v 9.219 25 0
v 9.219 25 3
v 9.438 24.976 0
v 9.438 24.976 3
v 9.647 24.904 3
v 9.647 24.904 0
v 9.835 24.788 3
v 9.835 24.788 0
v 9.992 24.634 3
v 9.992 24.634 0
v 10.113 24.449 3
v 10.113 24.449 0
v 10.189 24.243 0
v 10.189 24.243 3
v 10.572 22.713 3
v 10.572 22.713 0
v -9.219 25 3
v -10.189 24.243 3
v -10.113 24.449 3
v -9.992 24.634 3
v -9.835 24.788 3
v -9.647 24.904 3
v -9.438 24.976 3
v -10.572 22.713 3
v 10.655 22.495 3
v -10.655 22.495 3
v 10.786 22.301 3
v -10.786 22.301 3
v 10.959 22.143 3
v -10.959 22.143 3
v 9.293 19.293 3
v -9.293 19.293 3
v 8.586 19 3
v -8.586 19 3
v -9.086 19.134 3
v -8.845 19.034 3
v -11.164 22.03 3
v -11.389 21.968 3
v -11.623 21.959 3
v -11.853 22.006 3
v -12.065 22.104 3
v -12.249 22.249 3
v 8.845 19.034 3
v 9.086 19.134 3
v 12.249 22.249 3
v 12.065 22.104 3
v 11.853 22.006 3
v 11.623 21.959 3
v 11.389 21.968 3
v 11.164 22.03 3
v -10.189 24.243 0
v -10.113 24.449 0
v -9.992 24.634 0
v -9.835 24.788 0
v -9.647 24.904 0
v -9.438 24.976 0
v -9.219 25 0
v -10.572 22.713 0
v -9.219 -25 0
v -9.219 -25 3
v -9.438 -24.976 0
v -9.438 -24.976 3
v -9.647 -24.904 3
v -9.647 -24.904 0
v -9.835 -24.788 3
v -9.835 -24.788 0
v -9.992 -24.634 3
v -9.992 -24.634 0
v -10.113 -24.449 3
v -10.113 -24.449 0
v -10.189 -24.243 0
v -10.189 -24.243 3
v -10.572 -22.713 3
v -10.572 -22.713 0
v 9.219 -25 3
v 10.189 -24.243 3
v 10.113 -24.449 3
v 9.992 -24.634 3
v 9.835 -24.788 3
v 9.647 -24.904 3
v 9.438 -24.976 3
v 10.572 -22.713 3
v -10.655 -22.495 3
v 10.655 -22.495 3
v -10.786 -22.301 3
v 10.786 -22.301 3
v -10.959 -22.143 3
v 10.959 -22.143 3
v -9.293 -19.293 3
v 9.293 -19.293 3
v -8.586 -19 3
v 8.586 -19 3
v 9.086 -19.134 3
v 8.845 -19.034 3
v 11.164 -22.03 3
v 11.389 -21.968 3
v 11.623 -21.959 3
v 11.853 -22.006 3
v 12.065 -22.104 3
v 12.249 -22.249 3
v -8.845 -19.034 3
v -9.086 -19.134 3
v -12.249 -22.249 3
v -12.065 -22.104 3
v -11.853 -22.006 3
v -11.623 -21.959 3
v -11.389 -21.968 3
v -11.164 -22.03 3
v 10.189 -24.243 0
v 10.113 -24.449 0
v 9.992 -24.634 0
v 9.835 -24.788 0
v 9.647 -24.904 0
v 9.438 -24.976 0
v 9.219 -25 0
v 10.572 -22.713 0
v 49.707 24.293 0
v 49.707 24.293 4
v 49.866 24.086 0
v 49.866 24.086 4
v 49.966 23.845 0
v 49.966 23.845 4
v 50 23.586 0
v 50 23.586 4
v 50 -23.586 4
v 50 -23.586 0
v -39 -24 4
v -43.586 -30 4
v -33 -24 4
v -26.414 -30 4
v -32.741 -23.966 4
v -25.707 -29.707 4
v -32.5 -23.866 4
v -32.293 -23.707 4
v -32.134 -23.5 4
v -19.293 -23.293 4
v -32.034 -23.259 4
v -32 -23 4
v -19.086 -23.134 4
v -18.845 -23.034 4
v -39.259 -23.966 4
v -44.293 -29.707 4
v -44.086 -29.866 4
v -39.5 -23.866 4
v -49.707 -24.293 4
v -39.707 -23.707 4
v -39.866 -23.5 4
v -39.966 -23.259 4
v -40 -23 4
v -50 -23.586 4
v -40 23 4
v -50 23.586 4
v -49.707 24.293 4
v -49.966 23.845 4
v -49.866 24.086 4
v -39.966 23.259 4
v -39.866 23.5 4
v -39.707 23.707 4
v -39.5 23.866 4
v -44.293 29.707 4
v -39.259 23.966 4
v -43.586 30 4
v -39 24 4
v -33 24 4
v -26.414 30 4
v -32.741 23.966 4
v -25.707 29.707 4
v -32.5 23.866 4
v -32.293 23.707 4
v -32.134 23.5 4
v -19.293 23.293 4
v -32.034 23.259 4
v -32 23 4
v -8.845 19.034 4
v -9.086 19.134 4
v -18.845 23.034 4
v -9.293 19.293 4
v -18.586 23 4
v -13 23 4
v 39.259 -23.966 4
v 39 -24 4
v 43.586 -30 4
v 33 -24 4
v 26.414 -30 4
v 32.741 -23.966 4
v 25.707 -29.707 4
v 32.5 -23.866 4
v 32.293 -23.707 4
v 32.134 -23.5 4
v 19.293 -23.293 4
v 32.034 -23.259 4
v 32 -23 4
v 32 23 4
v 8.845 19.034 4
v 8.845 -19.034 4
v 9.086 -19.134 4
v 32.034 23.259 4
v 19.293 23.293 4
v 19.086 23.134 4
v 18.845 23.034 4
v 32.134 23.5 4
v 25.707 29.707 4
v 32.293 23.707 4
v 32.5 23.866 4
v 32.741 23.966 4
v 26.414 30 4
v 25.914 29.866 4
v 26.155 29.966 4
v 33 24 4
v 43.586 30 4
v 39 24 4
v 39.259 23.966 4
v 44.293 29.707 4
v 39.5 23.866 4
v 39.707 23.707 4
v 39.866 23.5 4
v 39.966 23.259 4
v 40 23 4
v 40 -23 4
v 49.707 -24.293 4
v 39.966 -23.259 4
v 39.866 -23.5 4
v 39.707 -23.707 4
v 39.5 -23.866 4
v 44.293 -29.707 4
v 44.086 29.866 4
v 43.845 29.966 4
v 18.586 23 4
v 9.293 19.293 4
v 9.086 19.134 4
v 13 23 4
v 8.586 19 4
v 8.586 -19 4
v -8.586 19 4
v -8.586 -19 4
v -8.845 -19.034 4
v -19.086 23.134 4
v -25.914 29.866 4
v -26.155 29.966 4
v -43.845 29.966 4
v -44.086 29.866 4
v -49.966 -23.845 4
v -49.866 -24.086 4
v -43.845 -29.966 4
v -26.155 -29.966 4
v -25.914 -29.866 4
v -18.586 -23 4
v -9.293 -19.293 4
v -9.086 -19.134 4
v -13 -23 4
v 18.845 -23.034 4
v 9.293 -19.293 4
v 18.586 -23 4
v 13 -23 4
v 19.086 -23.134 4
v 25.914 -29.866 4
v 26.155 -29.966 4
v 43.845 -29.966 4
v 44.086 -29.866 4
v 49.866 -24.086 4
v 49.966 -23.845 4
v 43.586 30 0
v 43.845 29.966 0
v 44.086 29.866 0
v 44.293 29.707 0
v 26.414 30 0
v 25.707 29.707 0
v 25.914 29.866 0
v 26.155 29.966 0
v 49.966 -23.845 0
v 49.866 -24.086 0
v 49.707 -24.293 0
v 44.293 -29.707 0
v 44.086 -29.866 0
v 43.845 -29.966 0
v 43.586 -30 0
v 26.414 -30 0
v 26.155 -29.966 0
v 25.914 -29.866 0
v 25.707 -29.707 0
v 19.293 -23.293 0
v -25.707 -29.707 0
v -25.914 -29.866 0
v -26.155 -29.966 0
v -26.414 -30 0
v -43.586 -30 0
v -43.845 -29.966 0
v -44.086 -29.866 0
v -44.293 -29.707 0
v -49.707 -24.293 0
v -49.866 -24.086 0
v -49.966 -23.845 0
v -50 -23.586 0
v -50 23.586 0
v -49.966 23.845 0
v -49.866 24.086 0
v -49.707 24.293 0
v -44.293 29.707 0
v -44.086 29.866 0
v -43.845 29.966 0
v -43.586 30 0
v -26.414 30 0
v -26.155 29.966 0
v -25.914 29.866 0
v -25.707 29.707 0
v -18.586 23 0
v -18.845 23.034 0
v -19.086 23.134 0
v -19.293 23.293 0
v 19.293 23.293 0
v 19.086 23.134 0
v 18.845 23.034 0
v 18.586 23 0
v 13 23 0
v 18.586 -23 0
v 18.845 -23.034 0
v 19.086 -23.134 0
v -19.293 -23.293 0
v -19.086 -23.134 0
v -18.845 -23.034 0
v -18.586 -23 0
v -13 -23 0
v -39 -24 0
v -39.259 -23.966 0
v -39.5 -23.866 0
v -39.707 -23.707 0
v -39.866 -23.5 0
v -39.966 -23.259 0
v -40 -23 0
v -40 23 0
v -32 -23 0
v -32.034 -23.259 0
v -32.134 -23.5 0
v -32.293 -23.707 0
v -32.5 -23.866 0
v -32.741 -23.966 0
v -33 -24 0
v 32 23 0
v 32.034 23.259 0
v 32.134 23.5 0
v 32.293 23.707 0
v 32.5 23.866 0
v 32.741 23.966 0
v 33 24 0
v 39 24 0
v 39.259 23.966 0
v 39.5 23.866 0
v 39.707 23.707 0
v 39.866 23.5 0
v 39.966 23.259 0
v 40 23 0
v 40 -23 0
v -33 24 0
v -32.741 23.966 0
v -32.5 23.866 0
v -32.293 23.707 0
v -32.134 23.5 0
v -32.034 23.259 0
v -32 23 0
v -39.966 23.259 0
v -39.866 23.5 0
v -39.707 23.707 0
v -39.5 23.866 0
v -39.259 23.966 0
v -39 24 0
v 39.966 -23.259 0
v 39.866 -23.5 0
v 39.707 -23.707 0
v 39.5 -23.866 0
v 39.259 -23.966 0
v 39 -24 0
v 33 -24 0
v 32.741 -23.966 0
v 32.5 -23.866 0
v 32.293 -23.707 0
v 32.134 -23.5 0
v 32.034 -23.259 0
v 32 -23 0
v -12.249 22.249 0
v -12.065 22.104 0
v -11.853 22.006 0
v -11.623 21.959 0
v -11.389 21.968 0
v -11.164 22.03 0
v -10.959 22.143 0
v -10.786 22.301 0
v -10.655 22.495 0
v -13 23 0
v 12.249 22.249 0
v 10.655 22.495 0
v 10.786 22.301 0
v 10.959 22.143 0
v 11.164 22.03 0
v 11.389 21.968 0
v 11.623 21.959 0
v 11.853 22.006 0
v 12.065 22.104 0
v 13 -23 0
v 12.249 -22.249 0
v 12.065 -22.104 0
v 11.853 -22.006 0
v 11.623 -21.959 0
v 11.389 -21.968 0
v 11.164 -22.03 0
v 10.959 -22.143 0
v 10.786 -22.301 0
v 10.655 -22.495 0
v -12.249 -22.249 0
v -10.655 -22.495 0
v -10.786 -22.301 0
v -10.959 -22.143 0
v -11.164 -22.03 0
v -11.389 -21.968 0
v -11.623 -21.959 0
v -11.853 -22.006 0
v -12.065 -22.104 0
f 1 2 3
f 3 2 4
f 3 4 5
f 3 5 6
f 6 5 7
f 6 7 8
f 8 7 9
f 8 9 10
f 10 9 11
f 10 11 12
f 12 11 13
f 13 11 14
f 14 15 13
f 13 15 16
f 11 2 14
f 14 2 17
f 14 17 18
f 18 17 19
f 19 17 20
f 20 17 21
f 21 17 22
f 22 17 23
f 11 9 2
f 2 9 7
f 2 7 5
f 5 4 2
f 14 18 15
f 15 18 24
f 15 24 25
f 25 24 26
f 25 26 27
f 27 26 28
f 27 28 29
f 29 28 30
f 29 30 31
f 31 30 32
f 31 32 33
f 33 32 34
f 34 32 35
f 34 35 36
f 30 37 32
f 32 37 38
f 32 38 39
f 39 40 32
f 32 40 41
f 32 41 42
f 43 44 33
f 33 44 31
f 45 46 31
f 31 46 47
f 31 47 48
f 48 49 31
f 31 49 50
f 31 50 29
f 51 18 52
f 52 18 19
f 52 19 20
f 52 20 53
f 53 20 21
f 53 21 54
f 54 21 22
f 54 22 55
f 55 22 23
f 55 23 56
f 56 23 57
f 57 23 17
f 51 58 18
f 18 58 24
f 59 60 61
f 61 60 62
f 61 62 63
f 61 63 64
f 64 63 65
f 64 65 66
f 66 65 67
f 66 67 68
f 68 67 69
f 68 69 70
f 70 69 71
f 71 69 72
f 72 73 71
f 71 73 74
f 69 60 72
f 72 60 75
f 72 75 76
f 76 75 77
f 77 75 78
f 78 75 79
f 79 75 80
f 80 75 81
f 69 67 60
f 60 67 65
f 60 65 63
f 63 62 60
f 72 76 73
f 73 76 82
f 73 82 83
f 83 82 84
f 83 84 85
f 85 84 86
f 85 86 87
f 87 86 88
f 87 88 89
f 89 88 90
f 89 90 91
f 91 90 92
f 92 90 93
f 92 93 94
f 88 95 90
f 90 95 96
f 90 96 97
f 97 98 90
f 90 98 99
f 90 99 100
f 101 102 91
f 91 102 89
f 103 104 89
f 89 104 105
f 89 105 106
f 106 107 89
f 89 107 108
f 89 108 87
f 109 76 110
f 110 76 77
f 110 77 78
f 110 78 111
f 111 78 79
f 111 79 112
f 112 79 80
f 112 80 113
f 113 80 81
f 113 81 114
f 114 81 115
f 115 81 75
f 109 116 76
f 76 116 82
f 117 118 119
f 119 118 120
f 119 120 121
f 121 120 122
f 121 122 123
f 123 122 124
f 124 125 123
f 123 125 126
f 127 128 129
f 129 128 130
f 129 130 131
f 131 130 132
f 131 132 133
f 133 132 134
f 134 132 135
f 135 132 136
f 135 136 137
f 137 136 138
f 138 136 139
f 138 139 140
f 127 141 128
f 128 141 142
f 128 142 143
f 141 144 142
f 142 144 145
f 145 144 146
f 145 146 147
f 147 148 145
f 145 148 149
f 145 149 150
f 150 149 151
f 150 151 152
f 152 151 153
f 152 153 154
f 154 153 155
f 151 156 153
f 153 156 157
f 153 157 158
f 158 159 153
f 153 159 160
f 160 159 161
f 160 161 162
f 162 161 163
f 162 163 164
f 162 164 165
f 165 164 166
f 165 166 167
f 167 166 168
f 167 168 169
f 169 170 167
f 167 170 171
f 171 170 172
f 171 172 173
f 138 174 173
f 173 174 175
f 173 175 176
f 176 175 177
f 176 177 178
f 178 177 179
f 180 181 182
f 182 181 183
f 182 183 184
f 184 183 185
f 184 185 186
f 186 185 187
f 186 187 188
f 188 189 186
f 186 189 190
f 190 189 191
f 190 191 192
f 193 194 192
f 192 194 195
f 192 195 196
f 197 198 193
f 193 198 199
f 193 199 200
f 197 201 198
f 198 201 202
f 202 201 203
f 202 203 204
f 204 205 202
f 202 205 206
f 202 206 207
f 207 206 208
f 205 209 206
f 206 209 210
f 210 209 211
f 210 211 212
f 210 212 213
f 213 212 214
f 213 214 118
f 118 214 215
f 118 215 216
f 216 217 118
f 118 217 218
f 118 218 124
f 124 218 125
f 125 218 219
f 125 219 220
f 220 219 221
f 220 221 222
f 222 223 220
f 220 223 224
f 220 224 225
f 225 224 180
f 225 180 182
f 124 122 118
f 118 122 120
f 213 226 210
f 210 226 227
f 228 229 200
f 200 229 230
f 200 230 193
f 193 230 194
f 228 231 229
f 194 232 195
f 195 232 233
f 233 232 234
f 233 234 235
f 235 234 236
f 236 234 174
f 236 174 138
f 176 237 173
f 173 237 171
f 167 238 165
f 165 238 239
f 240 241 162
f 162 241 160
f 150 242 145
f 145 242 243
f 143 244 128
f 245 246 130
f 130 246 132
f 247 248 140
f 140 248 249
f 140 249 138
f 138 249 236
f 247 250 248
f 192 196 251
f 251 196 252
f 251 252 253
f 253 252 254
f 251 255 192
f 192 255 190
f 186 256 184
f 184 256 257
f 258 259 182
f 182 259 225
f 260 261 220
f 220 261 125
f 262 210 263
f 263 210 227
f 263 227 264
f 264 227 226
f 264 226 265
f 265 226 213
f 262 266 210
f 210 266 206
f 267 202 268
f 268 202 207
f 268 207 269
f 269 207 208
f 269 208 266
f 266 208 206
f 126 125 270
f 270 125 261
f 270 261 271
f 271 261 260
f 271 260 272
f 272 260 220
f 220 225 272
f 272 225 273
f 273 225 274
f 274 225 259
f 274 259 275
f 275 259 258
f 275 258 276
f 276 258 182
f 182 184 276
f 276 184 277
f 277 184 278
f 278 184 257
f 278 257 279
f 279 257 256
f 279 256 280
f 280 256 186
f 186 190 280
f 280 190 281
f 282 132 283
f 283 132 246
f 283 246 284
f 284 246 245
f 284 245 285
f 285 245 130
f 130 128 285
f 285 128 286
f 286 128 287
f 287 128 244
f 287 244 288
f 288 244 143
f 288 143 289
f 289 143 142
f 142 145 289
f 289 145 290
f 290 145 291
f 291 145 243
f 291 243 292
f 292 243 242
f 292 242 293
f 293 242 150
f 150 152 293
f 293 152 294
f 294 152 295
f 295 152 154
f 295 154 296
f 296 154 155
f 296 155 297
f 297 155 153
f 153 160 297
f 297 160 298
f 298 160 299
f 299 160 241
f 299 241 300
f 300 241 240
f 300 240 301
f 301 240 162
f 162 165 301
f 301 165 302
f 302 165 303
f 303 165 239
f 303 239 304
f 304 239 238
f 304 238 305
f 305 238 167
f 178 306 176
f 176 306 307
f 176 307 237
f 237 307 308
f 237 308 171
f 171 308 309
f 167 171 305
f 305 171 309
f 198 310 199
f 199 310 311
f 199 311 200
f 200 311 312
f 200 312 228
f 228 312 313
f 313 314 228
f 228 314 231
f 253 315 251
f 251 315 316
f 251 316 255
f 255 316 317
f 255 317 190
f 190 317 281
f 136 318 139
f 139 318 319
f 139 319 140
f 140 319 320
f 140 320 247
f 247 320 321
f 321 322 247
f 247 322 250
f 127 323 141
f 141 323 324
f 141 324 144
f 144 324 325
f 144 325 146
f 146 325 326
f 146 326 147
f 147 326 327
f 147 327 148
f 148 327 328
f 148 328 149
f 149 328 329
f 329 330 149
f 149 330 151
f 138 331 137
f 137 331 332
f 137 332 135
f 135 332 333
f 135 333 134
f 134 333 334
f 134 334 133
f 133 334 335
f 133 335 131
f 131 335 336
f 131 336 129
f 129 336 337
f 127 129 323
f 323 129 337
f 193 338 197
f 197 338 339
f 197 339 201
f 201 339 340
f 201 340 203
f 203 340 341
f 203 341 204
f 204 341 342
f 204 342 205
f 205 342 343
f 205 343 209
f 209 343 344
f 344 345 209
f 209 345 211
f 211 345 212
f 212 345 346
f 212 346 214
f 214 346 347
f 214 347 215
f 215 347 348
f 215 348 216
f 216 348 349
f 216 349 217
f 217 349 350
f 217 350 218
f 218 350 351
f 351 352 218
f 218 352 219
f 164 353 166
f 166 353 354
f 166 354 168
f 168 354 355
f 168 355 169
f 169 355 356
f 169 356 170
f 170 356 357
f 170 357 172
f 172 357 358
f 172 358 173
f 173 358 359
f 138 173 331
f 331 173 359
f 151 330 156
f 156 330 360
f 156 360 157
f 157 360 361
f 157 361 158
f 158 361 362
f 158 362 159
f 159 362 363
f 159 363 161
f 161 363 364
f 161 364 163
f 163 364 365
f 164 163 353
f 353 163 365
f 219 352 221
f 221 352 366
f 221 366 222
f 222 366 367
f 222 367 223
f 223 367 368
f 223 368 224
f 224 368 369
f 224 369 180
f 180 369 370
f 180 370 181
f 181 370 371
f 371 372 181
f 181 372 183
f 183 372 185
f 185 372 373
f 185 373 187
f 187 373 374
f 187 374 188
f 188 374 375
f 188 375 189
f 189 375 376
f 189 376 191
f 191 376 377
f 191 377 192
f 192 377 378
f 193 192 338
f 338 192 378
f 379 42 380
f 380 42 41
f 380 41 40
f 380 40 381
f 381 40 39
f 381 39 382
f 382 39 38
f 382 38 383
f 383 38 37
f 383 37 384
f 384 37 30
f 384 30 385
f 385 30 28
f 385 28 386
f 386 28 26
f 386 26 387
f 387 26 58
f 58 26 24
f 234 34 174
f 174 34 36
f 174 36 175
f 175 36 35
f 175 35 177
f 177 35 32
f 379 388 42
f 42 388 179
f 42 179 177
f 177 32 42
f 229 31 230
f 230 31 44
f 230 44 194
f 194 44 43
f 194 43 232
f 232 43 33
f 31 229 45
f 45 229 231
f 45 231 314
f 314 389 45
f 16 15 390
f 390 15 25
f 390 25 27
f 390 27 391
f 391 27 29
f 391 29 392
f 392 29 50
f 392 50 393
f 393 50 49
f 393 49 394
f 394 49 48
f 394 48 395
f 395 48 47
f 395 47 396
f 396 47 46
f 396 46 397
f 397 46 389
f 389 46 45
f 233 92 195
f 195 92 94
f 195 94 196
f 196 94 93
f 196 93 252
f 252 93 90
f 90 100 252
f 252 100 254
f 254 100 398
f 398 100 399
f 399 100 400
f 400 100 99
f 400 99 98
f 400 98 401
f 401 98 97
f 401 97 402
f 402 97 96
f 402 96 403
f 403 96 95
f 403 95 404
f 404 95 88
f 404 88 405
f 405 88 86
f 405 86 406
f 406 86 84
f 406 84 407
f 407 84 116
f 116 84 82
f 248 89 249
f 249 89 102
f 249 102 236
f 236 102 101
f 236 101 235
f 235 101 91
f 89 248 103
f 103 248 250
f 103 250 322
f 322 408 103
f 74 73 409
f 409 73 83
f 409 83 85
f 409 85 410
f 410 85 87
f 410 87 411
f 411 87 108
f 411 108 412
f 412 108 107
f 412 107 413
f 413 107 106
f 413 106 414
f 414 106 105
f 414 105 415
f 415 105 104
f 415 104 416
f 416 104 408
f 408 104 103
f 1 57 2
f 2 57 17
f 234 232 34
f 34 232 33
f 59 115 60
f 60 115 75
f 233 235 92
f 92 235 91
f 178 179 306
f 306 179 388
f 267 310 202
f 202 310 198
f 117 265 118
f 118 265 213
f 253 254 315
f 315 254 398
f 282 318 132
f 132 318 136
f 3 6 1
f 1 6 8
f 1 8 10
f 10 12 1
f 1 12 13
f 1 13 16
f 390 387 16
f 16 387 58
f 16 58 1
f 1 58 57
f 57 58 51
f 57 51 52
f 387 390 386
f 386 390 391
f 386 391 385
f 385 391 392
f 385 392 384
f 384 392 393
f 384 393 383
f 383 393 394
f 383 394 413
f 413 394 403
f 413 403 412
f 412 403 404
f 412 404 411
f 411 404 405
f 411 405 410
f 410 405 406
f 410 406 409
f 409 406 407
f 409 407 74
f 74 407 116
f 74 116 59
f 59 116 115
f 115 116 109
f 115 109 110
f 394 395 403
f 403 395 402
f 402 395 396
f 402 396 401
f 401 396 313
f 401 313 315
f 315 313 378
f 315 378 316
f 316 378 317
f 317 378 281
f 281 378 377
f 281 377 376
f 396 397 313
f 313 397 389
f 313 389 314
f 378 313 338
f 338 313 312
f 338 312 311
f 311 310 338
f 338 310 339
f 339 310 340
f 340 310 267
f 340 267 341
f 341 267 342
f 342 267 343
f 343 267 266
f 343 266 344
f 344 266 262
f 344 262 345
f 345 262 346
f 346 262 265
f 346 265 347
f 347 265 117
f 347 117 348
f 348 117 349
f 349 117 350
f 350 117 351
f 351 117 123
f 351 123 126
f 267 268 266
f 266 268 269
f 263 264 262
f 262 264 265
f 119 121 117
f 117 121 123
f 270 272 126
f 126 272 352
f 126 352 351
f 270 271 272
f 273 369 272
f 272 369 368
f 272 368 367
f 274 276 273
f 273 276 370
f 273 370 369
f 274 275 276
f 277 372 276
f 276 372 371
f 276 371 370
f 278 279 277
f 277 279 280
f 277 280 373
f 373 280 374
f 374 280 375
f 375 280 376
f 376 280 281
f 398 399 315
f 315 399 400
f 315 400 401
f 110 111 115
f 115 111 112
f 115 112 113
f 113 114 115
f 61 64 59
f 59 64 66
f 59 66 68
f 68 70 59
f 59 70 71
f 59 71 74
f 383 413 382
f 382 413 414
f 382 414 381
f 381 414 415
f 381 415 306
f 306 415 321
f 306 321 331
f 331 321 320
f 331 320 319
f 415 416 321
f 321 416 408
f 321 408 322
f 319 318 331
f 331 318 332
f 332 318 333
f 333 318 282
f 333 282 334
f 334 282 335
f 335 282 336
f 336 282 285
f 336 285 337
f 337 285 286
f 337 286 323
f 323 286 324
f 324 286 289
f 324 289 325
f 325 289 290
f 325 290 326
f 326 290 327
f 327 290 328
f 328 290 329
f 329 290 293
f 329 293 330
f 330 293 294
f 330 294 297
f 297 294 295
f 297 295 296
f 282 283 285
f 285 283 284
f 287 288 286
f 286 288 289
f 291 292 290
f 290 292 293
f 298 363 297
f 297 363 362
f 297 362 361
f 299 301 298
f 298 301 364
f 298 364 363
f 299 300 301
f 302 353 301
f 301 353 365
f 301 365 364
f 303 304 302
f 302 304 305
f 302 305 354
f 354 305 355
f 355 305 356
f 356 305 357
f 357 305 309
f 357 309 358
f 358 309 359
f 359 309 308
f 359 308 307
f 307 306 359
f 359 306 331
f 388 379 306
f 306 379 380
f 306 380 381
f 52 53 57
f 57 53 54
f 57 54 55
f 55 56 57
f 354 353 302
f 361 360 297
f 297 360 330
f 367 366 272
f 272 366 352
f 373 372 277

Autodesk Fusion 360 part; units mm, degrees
sketch "スケッチ1" plane through (0, 0, 0) normal (0, 0, 1) x (1, 0, 0)
  line L0 (50, 30) -> (-50, 30)
  line L1 (-50, 30) -> (-50, -30)
  line L2 (-50, -30) -> (50, -30)
  line L3 (50, -30) -> (50, 30)
  line L4 (50, 30) -> (-50, -30) construction
  line L5 (-50, 30) -> (50, -30) construction
  line L6 (-40, 24) -> (-32, 24)
  line L7 (-32, 24) -> (-32, -24)
  line L8 (-32, -24) -> (-40, -24)
  line L9 (-40, -24) -> (-40, 24)
  line L10 (-50, 0) -> (50, 0) construction
  line L11 (0, -30) -> (0, 30) construction
  line L12 (-50, 24) -> (-44, 30)
  line L13 (-26, 30) -> (-19, 23)
  line L14 (-19, 23) -> (-13, 23)
  line L15 (-13, 23) -> (-9, 19)
  line L16 (-50, -24) -> (-44, -30)
  line L17 (-26, -30) -> (-19, -23)
  line L18 (-19, -23) -> (-13, -23)
  line L19 (-13, -23) -> (-9, -19)
  line L20 (50, 24) -> (44, 30)
  line L21 (26, 30) -> (19, 23)
  line L22 (19, 23) -> (13, 23)
  line L23 (13, 23) -> (9, 19)
  line L24 (13, -23) -> (9, -19)
  line L25 (19, -23) -> (13, -23)
  line L26 (26, -30) -> (19, -23)
  line L27 (50, -24) -> (44, -30)
  line L28 (-9, 19) -> (9, 19)
  line L29 (-10, 25) -> (10, 25)
  line L30 (-10, 25) -> (-11, 21)
  line L31 (10, 25) -> (11, 21)
  line L32 (-10, -25) -> (-11, -21)
  line L33 (-10, -25) -> (10, -25)
  line L34 (10, -25) -> (11, -21)
  line L35 (-9, -19) -> (9, -19)
  line L36 (40, 24) -> (32, 24)
  line L37 (40, -24) -> (40, 24)
  line L38 (32, 24) -> (32, -24)
  line L39 (32, -24) -> (40, -24)
  dimension "d1" = 100
  dimension "d2" = 60
  dimension "d3" = 8
  dimension "d4" = 48
  dimension "d5" = 10
  dimension "d6" = 6
  dimension "d7" = 6
  dimension "d8" = 18
  dimension "d9" = 7
  dimension "d10" = 7
  dimension "d11" = 6
  dimension "d12" = 4
  dimension "d13" = 4
  dimension "d14" = 6
  dimension "d15" = 20
extrude "押し出し1" add sketch "スケッチ1" along normal blind 4 contours L0 L1 L2 L3 L12 L13 L14 L15 L16 L17 L18 L19 L20 L21 L22 L23 L24 L25 L26 L27 L28 L35
extrude "押し出し2" add sketch "スケッチ1" along normal blind 3 contours L15 L23 L28 L29 L30 L31 | L19 L24 L32 L33 L34 L35
fillet "フィレット1" radius 1 16 edges at (-11, -21, 1.5) (-9, -19, 3.5) (11, -21, 1.5) (9, -19, 3.5) (11, 21, 1.5) (9, 19, 3.5) (-9, 19, 3.5) (-11, 21, 1.5) (32, -24, 2) (40, -24, 2) (-40, 24, 2) (-32, 24, 2) (40, 24, 2) (32, 24, 2) (-32, -24, 2) (-40, -24, 2)
fillet "フィレット2" radius 1 4 edges at (-19, -23, 2) (19, -23, 2) (19, 23, 2) (-19, 23, 2)
fillet "フィレット3" radius 1 12 edges at (-26, 30, 2) (-44, 30, 2) (-50, 24, 2) (-50, -24, 2) (-44, -30, 2) (-26, -30, 2) (26, -30, 2) (44, -30, 2) (50, -24, 2) (26, 30, 2) (44, 30, 2) (50, 24, 2)
fillet "フィレット4" radius 1 4 edges at (10, -25, 1.5) (-10, -25, 1.5) (-10, 25, 1.5) (10, 25, 1.5)
equation "d7 = d6"
